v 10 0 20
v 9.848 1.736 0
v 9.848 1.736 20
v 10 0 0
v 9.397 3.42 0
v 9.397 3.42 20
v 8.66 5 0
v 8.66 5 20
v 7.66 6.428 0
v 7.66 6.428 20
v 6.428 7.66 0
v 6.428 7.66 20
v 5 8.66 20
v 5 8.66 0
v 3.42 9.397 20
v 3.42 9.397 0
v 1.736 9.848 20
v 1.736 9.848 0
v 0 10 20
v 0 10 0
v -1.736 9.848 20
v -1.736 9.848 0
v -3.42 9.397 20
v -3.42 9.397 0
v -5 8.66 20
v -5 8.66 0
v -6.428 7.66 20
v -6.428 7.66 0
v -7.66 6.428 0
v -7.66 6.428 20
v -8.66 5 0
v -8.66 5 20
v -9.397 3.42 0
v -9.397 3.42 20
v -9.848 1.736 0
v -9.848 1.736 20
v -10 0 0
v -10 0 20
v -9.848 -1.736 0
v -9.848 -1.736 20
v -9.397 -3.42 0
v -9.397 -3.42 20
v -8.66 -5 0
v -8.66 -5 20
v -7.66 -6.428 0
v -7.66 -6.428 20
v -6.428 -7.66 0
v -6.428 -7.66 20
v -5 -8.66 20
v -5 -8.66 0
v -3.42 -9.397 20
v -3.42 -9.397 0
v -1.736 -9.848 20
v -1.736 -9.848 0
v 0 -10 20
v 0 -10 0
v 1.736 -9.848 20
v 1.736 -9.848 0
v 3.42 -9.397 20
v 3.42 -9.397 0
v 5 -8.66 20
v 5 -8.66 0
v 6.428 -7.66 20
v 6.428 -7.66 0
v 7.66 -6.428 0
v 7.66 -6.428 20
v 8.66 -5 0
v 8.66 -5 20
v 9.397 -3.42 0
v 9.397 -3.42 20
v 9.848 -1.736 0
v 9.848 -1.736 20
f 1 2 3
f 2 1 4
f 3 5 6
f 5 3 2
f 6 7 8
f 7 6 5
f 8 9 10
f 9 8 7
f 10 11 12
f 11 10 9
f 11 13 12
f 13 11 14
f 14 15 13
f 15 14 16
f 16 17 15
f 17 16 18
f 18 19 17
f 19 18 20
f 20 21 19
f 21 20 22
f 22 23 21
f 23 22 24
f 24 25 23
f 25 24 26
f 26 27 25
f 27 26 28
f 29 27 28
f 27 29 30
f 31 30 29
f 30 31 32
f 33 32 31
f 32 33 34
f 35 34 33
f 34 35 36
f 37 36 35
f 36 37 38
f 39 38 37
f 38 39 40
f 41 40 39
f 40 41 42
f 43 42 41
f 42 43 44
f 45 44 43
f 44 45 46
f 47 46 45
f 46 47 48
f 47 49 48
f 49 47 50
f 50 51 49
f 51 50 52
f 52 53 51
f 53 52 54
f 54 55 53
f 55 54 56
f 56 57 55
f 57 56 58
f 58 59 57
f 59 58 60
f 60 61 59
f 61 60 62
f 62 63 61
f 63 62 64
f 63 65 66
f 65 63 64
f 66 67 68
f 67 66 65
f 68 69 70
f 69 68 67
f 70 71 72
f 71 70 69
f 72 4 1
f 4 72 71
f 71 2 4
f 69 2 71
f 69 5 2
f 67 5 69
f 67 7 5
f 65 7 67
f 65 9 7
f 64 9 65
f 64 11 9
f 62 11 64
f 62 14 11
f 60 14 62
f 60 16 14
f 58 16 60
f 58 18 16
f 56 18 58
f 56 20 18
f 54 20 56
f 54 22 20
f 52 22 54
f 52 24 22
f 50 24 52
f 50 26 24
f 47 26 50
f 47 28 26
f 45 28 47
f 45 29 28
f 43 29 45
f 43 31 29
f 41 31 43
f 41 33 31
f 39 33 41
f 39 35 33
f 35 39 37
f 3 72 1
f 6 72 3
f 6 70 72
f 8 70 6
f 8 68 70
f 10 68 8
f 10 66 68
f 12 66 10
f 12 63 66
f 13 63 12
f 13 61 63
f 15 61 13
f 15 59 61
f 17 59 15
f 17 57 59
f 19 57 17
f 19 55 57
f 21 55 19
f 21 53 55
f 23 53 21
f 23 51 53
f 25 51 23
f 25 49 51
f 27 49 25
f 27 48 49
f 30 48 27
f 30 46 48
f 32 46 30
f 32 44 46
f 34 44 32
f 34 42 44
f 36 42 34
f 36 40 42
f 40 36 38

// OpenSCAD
module ring(radius, height, segments = 36) {
  cylinder(r = radius, h = height, $fn = segments);
}

ring(radius = 10, height = 20);
